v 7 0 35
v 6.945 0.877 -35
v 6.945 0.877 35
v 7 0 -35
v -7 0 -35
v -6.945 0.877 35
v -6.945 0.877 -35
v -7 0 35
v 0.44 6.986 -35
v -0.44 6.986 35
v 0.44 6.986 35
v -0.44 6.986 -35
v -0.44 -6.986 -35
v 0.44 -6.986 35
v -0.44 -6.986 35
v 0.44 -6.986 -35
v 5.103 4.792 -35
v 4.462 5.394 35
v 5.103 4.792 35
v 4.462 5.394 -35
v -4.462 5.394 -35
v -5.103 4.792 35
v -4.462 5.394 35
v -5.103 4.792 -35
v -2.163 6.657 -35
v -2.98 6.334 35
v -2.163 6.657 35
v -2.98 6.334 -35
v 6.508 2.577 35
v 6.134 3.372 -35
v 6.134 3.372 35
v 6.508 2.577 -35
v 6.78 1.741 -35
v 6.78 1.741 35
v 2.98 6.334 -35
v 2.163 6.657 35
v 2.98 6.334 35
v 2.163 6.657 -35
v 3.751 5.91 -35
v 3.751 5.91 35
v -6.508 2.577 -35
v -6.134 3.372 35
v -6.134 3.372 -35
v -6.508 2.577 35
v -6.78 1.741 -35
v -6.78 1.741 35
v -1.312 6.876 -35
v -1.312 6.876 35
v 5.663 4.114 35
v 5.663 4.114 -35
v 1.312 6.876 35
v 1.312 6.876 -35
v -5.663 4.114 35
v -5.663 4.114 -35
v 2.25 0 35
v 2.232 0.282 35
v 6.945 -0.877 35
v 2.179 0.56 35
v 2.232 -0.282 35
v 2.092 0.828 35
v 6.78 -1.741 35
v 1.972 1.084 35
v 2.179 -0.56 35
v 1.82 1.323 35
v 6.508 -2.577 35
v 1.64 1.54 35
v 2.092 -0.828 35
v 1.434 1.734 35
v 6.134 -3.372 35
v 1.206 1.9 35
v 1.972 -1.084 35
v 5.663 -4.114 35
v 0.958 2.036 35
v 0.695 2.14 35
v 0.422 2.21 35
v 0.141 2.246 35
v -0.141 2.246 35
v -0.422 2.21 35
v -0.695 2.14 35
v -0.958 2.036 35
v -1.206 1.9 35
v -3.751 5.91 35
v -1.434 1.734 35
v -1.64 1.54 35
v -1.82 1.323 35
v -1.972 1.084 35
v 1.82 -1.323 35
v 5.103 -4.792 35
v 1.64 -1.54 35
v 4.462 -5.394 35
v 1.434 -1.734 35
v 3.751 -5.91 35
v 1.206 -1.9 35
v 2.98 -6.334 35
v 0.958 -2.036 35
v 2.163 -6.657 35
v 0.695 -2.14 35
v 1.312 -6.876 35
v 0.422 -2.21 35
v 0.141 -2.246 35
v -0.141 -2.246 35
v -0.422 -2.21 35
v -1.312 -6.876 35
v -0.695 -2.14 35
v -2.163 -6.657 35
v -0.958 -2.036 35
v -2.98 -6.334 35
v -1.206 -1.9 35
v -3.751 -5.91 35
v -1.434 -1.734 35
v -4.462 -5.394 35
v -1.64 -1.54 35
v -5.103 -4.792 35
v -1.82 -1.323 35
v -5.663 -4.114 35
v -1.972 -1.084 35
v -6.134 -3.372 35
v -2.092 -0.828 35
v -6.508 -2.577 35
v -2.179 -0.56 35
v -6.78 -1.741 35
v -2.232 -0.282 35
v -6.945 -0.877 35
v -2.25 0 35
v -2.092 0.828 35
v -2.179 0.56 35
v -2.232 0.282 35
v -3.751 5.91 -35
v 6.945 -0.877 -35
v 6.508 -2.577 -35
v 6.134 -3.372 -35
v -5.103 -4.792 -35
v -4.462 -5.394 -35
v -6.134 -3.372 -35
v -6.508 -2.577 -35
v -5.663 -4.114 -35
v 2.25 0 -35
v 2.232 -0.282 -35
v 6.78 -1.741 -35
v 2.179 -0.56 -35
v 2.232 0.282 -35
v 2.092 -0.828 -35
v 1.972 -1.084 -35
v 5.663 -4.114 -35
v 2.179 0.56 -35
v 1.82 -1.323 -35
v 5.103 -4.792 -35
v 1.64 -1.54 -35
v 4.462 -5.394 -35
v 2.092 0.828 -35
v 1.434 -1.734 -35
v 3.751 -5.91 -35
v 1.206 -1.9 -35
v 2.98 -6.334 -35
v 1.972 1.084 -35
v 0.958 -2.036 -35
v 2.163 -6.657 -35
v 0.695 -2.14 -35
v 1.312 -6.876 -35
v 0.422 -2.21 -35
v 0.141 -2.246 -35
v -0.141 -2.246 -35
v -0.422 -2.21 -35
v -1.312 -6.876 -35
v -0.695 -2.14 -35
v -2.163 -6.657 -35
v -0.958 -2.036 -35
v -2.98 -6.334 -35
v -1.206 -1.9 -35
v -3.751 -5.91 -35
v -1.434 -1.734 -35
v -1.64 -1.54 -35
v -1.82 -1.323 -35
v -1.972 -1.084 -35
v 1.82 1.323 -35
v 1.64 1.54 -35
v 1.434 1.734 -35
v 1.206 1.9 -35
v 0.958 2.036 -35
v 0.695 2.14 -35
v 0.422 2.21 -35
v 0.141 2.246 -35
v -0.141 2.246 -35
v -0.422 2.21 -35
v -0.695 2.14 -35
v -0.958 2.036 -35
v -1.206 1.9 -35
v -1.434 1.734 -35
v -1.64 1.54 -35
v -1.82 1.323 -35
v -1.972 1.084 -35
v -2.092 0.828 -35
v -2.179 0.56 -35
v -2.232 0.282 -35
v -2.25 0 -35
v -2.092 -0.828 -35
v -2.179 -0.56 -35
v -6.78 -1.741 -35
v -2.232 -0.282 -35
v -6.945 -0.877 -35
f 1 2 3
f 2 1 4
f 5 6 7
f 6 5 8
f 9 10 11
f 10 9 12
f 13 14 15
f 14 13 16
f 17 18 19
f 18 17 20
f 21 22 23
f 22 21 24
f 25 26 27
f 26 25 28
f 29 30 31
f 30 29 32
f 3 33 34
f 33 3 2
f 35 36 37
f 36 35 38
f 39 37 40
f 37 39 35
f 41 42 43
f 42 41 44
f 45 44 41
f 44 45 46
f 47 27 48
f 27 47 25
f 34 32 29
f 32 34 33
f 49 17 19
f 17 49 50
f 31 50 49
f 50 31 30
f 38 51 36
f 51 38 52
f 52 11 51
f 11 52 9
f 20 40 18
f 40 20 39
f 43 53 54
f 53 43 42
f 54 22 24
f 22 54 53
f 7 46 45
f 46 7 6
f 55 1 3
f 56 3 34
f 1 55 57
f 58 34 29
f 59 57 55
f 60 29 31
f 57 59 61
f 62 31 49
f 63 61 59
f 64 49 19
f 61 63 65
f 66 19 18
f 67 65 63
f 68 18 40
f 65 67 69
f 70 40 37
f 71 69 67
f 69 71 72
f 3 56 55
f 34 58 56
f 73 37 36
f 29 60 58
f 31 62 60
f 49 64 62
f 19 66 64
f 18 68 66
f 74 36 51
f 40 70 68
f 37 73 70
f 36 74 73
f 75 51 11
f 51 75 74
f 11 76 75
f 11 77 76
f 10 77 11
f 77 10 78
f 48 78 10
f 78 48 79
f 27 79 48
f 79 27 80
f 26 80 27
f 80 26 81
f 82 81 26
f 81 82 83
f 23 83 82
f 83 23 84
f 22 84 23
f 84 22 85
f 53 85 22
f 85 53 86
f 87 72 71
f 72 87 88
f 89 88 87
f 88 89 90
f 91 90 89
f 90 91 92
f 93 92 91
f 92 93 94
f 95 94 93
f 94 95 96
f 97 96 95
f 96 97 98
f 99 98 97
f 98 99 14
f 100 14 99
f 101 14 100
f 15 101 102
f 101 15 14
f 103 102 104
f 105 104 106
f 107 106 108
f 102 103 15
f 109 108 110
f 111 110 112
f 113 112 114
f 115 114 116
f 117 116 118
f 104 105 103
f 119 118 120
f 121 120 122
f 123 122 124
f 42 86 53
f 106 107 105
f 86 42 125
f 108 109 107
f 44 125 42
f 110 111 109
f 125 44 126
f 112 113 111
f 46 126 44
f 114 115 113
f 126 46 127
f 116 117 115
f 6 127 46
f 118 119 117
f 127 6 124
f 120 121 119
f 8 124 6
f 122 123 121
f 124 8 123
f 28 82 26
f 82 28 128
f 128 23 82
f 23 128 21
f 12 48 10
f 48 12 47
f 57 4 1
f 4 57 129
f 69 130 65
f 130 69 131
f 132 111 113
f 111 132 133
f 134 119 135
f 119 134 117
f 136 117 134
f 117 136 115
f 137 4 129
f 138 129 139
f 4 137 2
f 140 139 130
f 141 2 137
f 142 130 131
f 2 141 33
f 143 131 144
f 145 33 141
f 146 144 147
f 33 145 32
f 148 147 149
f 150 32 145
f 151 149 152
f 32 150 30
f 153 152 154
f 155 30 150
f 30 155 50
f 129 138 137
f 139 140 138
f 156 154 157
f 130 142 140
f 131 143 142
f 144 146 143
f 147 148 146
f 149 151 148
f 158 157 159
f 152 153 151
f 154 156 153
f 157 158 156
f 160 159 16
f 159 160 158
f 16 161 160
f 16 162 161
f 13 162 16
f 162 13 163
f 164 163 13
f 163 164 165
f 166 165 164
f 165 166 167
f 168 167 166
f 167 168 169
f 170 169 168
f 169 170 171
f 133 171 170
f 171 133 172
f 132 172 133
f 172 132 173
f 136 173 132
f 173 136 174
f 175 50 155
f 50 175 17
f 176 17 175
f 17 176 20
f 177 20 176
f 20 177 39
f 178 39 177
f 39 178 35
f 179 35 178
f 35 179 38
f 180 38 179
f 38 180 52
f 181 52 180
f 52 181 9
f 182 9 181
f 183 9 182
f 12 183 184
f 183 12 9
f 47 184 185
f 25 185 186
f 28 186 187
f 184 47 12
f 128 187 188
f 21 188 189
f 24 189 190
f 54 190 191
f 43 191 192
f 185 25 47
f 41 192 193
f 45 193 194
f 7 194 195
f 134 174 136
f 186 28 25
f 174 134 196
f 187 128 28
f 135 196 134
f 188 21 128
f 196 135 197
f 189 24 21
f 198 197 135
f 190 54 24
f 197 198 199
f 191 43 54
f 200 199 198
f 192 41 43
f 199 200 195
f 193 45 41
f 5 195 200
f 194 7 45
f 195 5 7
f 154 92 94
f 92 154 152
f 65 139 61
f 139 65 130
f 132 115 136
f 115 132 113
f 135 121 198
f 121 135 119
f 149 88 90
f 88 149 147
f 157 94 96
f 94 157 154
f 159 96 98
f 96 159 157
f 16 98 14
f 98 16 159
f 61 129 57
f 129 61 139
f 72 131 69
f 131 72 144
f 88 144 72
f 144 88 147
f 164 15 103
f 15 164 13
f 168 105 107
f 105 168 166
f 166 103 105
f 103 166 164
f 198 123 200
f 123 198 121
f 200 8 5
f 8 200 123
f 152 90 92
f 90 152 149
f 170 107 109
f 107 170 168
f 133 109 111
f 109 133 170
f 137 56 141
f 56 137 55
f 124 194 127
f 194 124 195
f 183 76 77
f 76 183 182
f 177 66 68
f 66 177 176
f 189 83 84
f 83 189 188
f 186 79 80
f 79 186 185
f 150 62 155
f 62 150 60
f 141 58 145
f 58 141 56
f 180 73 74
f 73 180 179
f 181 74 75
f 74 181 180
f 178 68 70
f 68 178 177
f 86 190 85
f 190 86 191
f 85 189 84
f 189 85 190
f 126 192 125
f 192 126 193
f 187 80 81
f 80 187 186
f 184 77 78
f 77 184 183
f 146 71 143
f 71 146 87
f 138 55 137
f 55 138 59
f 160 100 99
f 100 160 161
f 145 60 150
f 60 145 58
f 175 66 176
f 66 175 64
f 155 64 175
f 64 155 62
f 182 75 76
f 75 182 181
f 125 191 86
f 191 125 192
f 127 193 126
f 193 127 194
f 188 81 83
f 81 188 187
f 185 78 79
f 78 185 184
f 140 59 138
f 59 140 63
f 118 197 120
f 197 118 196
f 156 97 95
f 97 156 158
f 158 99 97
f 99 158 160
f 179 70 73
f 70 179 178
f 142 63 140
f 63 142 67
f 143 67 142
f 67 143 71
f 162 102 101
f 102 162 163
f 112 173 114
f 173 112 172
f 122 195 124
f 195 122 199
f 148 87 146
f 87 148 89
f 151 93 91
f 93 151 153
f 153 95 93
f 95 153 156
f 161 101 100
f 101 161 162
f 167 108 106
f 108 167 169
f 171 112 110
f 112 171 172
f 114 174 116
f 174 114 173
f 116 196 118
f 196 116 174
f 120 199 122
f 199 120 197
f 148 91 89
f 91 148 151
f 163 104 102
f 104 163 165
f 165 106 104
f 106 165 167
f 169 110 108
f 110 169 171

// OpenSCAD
$fn = 50;


difference() {
	union() {
		translate(v = [0, 0, -35.0000000000]) {
			cylinder(h = 70, r = 7.0000000000);
		}
	}
	union() {
		translate(v = [0, 0, -100.0000000000]) {
			cylinder(h = 200, r = 2.2500000000);
		}
	}
}
